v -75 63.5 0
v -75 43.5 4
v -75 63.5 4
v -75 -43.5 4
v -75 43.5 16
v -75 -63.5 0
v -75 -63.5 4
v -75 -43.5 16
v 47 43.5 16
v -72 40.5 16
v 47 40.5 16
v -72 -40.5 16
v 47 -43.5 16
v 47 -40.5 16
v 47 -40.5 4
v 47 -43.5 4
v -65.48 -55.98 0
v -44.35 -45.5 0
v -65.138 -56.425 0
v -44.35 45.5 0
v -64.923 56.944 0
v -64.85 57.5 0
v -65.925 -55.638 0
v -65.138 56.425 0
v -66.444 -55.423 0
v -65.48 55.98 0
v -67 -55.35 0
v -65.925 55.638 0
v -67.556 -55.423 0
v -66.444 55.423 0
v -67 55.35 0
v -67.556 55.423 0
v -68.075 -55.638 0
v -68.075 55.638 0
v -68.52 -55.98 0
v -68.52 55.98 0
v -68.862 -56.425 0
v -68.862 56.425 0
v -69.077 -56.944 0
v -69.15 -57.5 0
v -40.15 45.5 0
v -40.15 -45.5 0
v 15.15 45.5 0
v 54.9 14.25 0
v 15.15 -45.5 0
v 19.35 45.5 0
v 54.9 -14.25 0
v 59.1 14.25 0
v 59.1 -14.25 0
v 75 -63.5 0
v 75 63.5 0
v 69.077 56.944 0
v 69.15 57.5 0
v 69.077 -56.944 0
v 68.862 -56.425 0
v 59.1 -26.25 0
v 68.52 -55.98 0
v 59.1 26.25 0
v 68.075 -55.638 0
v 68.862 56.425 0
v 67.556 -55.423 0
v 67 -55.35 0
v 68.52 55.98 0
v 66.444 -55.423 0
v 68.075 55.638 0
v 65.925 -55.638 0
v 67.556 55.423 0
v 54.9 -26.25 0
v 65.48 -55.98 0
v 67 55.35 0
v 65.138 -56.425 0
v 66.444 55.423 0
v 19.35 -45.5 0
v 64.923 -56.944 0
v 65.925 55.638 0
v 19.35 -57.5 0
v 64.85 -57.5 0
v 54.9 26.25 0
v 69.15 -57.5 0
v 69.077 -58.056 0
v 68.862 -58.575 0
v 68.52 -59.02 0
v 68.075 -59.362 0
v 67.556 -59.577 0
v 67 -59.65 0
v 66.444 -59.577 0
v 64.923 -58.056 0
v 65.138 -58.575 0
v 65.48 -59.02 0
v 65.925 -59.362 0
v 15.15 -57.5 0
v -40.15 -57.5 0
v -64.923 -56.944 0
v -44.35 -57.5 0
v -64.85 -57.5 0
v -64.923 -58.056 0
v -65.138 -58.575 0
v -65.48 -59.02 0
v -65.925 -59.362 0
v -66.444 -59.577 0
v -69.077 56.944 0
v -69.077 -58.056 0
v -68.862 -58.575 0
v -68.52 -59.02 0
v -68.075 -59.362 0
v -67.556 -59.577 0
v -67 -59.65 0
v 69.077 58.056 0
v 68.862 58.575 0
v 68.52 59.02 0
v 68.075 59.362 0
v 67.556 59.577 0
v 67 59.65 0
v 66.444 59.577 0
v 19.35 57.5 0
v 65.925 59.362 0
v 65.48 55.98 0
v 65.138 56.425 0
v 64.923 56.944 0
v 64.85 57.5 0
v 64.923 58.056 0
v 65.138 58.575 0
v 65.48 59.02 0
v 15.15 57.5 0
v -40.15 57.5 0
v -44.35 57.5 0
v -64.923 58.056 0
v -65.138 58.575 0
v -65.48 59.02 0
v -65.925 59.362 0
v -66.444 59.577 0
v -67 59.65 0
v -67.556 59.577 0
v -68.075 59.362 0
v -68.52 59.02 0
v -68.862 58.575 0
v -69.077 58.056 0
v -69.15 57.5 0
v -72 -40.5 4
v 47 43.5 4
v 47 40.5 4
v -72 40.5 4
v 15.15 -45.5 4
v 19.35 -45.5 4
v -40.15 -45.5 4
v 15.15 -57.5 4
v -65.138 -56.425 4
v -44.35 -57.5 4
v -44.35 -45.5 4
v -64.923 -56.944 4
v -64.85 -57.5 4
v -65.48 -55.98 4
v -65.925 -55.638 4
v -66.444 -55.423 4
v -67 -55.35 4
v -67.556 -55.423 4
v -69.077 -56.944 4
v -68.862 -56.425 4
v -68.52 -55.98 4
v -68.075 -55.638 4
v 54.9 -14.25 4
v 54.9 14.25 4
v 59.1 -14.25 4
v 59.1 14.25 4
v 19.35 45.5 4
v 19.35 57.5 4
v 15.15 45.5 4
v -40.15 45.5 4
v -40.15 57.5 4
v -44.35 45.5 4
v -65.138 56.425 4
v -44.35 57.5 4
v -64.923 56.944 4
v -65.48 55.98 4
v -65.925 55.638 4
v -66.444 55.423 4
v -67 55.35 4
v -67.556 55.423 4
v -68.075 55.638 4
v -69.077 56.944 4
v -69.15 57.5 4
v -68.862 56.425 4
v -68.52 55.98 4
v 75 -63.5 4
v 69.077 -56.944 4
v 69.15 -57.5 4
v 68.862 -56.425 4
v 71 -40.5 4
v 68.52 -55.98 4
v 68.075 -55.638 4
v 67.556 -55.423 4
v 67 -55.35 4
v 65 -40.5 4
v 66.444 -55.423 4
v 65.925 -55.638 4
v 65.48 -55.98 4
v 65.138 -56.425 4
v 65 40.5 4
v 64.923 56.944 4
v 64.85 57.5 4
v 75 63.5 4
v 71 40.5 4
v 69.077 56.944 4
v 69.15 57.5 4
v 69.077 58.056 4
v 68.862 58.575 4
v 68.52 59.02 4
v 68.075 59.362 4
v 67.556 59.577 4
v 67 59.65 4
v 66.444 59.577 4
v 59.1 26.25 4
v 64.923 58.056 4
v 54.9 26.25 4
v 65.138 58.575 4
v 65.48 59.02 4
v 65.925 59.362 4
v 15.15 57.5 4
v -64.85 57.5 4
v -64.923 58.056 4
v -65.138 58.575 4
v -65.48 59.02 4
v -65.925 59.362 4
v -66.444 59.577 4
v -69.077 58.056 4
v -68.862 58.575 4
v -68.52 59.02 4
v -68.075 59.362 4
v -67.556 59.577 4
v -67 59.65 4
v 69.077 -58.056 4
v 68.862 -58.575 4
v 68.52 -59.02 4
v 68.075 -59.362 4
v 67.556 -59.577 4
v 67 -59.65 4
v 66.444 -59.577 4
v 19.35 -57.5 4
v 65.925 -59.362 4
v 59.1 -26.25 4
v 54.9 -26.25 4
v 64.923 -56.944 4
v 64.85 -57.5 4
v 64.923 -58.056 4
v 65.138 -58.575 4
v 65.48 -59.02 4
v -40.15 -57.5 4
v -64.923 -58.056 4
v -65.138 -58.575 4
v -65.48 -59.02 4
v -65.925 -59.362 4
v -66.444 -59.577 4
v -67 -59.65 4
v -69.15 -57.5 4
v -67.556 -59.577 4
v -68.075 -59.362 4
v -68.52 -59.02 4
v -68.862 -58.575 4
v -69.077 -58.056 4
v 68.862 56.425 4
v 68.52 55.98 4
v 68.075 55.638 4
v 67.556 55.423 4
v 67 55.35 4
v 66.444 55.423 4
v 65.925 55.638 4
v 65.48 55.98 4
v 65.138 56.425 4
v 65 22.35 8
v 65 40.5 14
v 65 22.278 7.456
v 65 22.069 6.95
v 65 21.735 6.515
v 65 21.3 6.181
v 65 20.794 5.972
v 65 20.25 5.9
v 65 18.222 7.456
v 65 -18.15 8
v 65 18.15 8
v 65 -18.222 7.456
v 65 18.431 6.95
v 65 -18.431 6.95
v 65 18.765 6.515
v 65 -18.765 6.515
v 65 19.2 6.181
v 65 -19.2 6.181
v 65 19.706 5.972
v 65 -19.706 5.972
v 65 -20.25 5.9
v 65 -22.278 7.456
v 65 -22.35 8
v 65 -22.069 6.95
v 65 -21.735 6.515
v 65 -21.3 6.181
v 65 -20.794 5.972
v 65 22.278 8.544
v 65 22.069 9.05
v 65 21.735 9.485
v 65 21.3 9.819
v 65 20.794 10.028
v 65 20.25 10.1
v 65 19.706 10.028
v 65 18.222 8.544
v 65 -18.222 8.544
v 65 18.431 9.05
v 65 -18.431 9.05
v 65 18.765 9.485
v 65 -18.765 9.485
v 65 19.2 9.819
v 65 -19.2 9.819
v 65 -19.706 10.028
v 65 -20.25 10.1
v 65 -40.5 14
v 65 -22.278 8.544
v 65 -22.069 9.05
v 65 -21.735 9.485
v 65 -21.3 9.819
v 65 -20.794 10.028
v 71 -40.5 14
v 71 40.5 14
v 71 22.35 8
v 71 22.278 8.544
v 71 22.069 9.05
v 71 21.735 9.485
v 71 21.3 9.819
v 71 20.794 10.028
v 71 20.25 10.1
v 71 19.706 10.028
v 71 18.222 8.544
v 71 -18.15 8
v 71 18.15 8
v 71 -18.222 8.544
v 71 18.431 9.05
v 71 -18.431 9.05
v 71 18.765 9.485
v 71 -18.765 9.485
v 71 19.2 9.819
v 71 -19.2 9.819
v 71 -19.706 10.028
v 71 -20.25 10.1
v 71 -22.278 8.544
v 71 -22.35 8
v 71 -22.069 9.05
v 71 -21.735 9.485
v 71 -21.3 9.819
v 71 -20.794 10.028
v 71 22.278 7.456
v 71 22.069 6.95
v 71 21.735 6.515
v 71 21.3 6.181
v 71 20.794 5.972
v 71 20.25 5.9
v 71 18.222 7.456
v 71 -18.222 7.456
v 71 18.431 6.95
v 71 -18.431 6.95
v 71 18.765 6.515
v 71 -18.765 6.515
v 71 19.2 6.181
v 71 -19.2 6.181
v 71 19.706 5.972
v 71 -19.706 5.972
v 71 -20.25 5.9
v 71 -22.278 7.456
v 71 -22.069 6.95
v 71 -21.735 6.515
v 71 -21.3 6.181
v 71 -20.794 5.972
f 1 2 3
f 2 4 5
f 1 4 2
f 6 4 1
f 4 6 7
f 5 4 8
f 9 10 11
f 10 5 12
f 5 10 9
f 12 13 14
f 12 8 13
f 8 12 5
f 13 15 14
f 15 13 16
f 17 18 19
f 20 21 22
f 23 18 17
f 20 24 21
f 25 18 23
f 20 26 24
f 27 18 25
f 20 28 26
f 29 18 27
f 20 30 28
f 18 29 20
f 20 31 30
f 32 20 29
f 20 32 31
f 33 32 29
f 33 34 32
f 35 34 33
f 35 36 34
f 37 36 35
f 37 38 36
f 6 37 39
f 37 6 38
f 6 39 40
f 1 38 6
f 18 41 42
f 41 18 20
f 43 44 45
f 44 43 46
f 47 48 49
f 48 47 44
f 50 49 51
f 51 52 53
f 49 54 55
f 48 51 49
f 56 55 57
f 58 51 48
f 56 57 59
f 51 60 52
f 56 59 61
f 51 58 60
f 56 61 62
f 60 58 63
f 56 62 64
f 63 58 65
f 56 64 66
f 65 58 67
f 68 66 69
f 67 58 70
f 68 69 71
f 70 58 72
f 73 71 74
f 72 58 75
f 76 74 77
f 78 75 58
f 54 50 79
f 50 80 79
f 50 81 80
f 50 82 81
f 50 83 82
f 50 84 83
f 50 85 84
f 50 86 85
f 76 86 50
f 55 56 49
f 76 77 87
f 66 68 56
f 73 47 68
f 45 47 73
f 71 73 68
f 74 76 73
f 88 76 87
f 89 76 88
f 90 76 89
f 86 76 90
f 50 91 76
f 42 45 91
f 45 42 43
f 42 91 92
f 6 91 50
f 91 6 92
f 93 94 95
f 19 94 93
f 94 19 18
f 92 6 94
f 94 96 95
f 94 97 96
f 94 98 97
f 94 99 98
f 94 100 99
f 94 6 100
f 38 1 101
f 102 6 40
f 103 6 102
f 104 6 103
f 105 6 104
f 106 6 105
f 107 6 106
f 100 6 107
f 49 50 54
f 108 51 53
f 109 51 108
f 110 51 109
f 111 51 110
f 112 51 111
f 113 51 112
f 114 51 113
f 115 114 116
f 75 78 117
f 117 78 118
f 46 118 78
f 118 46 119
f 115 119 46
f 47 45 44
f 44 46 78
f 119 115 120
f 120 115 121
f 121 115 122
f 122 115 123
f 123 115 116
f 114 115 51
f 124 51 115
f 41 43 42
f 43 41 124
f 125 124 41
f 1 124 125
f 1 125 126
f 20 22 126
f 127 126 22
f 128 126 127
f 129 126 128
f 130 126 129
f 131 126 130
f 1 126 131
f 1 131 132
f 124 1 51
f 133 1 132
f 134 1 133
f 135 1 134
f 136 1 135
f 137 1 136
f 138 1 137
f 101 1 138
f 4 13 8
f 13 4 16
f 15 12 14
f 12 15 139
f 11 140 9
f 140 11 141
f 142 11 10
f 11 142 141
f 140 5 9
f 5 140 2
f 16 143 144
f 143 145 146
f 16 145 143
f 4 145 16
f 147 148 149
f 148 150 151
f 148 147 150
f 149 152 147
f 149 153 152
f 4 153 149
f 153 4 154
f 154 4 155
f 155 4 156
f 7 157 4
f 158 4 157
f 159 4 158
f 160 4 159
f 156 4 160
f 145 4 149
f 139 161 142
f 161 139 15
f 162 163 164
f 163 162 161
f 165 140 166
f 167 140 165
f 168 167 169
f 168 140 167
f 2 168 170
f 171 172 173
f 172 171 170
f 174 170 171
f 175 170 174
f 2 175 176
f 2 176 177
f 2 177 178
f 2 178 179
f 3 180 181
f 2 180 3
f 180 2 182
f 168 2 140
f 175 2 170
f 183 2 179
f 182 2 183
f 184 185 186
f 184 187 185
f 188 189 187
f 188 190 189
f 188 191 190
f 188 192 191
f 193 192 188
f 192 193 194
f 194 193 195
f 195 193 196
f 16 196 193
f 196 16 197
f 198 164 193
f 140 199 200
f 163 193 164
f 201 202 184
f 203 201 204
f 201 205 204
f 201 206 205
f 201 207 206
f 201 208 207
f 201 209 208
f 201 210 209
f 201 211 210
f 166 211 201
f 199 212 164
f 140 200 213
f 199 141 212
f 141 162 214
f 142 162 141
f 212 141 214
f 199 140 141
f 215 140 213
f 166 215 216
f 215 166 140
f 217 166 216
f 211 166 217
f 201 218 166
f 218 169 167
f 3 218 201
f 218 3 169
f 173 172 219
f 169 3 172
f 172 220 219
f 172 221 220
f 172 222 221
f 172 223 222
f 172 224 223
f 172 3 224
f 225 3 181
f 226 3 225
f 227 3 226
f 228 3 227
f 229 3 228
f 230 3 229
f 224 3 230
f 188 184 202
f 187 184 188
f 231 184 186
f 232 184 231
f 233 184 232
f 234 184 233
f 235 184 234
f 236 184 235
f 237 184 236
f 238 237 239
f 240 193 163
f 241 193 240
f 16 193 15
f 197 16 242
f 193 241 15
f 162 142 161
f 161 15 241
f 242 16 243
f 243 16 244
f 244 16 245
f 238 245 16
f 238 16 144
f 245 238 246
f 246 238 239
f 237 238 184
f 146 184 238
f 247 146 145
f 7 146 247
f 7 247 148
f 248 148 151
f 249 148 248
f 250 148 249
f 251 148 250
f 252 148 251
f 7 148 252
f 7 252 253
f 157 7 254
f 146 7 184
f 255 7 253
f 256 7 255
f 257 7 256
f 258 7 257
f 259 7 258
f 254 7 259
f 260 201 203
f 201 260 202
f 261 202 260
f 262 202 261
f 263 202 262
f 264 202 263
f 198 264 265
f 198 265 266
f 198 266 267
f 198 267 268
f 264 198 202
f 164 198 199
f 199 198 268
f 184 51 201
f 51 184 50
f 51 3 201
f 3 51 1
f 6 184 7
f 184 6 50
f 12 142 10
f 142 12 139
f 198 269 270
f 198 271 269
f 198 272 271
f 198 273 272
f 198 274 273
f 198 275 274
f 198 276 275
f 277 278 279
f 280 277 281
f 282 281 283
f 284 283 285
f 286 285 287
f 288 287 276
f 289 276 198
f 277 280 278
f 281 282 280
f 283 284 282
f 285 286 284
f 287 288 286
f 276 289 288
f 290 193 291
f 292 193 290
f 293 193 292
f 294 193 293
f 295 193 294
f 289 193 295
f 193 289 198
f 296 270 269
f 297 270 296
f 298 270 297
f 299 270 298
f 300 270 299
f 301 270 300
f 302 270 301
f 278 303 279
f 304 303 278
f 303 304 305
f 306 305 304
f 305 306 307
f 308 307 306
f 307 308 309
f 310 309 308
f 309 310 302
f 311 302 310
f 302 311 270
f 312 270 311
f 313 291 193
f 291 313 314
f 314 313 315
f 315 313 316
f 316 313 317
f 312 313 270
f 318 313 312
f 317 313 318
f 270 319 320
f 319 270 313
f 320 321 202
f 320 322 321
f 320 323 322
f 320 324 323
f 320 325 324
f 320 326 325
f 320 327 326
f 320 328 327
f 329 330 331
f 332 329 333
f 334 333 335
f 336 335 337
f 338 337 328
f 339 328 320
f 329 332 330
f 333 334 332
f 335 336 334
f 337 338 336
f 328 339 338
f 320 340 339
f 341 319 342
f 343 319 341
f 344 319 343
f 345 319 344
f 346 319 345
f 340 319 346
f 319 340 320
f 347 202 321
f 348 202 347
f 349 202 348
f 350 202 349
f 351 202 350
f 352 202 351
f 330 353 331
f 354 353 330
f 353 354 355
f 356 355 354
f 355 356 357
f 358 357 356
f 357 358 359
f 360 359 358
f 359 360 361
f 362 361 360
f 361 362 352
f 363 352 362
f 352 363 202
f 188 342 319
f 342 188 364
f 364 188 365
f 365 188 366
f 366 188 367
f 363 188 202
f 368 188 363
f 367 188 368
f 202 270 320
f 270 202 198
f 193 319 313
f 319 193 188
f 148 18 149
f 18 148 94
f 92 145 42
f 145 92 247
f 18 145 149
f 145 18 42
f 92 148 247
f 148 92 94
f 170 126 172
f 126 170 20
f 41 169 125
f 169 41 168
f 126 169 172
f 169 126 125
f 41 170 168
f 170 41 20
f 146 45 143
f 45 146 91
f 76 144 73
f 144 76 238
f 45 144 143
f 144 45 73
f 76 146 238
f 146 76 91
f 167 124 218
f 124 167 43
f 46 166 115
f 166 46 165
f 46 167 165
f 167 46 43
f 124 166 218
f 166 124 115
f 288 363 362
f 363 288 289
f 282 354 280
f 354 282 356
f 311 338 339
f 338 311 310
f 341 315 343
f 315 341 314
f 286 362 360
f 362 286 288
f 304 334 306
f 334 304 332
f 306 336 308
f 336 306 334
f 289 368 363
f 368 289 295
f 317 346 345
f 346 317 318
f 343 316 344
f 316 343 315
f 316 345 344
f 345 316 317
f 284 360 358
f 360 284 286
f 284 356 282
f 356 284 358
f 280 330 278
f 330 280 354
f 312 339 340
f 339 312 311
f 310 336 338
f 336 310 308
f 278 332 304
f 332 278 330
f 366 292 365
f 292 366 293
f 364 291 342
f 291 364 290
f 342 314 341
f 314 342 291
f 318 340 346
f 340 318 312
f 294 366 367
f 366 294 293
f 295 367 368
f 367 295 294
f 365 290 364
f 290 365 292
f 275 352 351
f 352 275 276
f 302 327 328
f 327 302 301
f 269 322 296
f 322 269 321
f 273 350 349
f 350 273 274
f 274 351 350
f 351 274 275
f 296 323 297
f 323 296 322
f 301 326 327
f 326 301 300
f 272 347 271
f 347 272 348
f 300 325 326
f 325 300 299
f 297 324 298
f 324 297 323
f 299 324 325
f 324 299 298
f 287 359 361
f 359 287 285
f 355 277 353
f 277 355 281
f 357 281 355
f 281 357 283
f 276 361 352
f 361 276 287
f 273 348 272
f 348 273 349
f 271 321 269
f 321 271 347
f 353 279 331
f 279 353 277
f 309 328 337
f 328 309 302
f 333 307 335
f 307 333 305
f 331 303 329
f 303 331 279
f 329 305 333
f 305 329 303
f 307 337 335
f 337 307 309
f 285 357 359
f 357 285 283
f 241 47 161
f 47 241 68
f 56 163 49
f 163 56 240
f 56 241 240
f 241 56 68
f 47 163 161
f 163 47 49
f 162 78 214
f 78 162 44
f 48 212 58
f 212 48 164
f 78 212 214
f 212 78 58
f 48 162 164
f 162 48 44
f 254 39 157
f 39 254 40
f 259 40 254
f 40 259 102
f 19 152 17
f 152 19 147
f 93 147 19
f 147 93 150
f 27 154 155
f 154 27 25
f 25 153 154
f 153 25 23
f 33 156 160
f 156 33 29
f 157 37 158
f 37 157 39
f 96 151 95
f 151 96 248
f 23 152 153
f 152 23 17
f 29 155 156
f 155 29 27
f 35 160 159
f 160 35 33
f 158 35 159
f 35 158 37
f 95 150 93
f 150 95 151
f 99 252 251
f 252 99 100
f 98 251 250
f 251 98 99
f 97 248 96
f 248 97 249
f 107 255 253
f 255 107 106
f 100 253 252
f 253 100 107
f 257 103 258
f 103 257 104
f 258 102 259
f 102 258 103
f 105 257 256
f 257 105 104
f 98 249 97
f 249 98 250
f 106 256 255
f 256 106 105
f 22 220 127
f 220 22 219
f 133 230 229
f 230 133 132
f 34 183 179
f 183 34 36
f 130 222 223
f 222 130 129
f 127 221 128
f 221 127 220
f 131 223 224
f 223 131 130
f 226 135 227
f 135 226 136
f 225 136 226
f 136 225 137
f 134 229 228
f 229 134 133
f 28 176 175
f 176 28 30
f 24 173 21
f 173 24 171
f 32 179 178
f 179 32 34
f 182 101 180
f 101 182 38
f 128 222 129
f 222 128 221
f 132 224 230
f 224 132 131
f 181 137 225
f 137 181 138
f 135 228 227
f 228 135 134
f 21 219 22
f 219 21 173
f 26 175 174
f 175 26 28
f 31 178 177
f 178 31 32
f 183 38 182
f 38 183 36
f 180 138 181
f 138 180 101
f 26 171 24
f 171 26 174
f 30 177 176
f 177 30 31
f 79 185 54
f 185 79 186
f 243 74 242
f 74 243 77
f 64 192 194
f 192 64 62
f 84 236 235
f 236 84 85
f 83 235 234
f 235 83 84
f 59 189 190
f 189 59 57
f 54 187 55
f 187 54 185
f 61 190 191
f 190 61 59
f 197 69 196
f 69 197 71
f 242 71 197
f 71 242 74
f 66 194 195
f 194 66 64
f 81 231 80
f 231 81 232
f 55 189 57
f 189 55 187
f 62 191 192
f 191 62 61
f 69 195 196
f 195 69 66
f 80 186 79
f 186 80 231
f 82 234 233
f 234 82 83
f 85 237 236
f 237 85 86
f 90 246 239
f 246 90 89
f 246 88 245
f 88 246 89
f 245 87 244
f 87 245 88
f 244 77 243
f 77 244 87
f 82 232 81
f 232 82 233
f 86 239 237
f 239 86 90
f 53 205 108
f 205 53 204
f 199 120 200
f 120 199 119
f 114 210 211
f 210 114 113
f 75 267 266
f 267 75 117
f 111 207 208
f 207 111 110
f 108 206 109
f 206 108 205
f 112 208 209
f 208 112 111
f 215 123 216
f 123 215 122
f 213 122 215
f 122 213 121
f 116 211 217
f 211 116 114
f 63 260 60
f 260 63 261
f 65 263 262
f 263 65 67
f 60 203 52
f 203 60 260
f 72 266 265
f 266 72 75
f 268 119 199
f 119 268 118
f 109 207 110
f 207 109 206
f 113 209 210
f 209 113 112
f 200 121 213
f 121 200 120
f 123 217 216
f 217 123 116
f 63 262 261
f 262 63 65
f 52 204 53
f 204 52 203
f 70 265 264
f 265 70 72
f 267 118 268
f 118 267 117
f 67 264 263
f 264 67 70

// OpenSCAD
// =============================================================================
// pluto_bracket.scad  -  Mounting bracket for an ADALM-Pluto in a weatherproof box
// Purpose:        Tray with side rails, two cable-tie straps over the case and a
//                 cable-relief bar at the USB/SMA end, with 4 x M4 holes to screw it
//                 into a weatherproof enclosure (as in the EA5EN outdoor-box photos).
//                 The ADALM-Pluto outer case is about 117 x 79 x 24 mm:
//                 MEASURE YOUR UNIT (clones and cases vary) and edit case_l/w/h.
// Print settings: PETG or ASA (outdoor / UV). 4 perimeters, 30 % infill,
//                 0.2 mm layers, NO supports. Print base down.
// RF note:        Keep the bracket away from the PA and the antenna output: NEVER
//                 print it in carbon-fibre or metal-filled filament (conductive,
//                 can detune or short RF parts). The Pluto case is plastic: heat is
//                 dissipated through the air, leave free space around it.
// Licence:        GPL-3.0-or-later (CERN-OHL-S-2.0 optional for the hardware design).
// Units:          millimetres.
// =============================================================================

case_l   = 117;   // MEASURE YOUR UNIT
case_w   = 79;    // MEASURE YOUR UNIT
case_h   = 24;    // MEASURE YOUR UNIT
clr      = 1.0;   // clearance round the case
wall     = 3;
base_t   = 4;
rail_h   = 12;    // rail height (must be < case_h)
relief_l = 28;    // free length at the cable end
strap_w  = 4.2;   // slot for 3.6 mm cable ties (increase for wider)
strap_l  = 12;
mount_d  = 4.3;   // M4
strap_out = 8;    // plate margin outside the rails for the strap slots

echo("MEASURE YOUR UNIT: case_l/case_w/case_h are nominal values");

in_l    = case_l + 2 * clr;
in_w    = case_w + 2 * clr;
plate_l = in_l + wall + relief_l;
plate_w = in_w + 2 * wall + 2 * (strap_l + strap_out);
x0      = -plate_l / 2;                 // plate starts here, rail wall at the -x end
cx      = x0 + wall + in_l / 2;         // centre of the case seat

module strap_slot() { cube([strap_w, strap_l, base_t + 2], center = false); }

difference() {
    union() {
        translate([x0, -plate_w / 2, 0]) cube([plate_l, plate_w, base_t]);
        // end wall (-x) and side rails
        translate([x0, -in_w / 2 - wall, 0]) cube([wall, in_w + 2 * wall, base_t + rail_h]);
        for (s = [-1, 1])
            translate([x0, s > 0 ? in_w / 2 : -in_w / 2 - wall, 0]) cube([wall + in_l, wall, base_t + rail_h]);
        // cable-relief bar with two tie holes
        translate([x0 + plate_l - 10, -in_w / 2, 0]) cube([6, in_w, base_t + 10]);
    }
    // straps over the case: slots just outside the rails, two positions along x
    for (px = [cx - in_l / 4, cx + in_l / 4], s = [-1, 1])
        translate([px - strap_w / 2, s > 0 ? in_w / 2 + wall + 2 : -in_w / 2 - wall - 2 - strap_l, -1]) strap_slot();
    // tie holes through the relief bar
    for (y = [-in_w / 4, in_w / 4])
        translate([x0 + plate_l - 11, y, base_t + 4]) rotate([0, 90, 0]) cylinder(d = strap_w, h = 8, $fn = 24);
    for (y = [-in_w / 4, in_w / 4])
        translate([x0 + plate_l - 18 - strap_w / 2, y - strap_l / 2, -1]) cube([strap_w, strap_l, base_t + 2]);
    // M4 holes to the enclosure
    for (px = [x0 + 8, x0 + plate_l - 8], py = [-plate_w / 2 + 6, plate_w / 2 - 6])
        translate([px, py, -1]) cylinder(d = mount_d, h = base_t + 2, $fn = 24);
}
